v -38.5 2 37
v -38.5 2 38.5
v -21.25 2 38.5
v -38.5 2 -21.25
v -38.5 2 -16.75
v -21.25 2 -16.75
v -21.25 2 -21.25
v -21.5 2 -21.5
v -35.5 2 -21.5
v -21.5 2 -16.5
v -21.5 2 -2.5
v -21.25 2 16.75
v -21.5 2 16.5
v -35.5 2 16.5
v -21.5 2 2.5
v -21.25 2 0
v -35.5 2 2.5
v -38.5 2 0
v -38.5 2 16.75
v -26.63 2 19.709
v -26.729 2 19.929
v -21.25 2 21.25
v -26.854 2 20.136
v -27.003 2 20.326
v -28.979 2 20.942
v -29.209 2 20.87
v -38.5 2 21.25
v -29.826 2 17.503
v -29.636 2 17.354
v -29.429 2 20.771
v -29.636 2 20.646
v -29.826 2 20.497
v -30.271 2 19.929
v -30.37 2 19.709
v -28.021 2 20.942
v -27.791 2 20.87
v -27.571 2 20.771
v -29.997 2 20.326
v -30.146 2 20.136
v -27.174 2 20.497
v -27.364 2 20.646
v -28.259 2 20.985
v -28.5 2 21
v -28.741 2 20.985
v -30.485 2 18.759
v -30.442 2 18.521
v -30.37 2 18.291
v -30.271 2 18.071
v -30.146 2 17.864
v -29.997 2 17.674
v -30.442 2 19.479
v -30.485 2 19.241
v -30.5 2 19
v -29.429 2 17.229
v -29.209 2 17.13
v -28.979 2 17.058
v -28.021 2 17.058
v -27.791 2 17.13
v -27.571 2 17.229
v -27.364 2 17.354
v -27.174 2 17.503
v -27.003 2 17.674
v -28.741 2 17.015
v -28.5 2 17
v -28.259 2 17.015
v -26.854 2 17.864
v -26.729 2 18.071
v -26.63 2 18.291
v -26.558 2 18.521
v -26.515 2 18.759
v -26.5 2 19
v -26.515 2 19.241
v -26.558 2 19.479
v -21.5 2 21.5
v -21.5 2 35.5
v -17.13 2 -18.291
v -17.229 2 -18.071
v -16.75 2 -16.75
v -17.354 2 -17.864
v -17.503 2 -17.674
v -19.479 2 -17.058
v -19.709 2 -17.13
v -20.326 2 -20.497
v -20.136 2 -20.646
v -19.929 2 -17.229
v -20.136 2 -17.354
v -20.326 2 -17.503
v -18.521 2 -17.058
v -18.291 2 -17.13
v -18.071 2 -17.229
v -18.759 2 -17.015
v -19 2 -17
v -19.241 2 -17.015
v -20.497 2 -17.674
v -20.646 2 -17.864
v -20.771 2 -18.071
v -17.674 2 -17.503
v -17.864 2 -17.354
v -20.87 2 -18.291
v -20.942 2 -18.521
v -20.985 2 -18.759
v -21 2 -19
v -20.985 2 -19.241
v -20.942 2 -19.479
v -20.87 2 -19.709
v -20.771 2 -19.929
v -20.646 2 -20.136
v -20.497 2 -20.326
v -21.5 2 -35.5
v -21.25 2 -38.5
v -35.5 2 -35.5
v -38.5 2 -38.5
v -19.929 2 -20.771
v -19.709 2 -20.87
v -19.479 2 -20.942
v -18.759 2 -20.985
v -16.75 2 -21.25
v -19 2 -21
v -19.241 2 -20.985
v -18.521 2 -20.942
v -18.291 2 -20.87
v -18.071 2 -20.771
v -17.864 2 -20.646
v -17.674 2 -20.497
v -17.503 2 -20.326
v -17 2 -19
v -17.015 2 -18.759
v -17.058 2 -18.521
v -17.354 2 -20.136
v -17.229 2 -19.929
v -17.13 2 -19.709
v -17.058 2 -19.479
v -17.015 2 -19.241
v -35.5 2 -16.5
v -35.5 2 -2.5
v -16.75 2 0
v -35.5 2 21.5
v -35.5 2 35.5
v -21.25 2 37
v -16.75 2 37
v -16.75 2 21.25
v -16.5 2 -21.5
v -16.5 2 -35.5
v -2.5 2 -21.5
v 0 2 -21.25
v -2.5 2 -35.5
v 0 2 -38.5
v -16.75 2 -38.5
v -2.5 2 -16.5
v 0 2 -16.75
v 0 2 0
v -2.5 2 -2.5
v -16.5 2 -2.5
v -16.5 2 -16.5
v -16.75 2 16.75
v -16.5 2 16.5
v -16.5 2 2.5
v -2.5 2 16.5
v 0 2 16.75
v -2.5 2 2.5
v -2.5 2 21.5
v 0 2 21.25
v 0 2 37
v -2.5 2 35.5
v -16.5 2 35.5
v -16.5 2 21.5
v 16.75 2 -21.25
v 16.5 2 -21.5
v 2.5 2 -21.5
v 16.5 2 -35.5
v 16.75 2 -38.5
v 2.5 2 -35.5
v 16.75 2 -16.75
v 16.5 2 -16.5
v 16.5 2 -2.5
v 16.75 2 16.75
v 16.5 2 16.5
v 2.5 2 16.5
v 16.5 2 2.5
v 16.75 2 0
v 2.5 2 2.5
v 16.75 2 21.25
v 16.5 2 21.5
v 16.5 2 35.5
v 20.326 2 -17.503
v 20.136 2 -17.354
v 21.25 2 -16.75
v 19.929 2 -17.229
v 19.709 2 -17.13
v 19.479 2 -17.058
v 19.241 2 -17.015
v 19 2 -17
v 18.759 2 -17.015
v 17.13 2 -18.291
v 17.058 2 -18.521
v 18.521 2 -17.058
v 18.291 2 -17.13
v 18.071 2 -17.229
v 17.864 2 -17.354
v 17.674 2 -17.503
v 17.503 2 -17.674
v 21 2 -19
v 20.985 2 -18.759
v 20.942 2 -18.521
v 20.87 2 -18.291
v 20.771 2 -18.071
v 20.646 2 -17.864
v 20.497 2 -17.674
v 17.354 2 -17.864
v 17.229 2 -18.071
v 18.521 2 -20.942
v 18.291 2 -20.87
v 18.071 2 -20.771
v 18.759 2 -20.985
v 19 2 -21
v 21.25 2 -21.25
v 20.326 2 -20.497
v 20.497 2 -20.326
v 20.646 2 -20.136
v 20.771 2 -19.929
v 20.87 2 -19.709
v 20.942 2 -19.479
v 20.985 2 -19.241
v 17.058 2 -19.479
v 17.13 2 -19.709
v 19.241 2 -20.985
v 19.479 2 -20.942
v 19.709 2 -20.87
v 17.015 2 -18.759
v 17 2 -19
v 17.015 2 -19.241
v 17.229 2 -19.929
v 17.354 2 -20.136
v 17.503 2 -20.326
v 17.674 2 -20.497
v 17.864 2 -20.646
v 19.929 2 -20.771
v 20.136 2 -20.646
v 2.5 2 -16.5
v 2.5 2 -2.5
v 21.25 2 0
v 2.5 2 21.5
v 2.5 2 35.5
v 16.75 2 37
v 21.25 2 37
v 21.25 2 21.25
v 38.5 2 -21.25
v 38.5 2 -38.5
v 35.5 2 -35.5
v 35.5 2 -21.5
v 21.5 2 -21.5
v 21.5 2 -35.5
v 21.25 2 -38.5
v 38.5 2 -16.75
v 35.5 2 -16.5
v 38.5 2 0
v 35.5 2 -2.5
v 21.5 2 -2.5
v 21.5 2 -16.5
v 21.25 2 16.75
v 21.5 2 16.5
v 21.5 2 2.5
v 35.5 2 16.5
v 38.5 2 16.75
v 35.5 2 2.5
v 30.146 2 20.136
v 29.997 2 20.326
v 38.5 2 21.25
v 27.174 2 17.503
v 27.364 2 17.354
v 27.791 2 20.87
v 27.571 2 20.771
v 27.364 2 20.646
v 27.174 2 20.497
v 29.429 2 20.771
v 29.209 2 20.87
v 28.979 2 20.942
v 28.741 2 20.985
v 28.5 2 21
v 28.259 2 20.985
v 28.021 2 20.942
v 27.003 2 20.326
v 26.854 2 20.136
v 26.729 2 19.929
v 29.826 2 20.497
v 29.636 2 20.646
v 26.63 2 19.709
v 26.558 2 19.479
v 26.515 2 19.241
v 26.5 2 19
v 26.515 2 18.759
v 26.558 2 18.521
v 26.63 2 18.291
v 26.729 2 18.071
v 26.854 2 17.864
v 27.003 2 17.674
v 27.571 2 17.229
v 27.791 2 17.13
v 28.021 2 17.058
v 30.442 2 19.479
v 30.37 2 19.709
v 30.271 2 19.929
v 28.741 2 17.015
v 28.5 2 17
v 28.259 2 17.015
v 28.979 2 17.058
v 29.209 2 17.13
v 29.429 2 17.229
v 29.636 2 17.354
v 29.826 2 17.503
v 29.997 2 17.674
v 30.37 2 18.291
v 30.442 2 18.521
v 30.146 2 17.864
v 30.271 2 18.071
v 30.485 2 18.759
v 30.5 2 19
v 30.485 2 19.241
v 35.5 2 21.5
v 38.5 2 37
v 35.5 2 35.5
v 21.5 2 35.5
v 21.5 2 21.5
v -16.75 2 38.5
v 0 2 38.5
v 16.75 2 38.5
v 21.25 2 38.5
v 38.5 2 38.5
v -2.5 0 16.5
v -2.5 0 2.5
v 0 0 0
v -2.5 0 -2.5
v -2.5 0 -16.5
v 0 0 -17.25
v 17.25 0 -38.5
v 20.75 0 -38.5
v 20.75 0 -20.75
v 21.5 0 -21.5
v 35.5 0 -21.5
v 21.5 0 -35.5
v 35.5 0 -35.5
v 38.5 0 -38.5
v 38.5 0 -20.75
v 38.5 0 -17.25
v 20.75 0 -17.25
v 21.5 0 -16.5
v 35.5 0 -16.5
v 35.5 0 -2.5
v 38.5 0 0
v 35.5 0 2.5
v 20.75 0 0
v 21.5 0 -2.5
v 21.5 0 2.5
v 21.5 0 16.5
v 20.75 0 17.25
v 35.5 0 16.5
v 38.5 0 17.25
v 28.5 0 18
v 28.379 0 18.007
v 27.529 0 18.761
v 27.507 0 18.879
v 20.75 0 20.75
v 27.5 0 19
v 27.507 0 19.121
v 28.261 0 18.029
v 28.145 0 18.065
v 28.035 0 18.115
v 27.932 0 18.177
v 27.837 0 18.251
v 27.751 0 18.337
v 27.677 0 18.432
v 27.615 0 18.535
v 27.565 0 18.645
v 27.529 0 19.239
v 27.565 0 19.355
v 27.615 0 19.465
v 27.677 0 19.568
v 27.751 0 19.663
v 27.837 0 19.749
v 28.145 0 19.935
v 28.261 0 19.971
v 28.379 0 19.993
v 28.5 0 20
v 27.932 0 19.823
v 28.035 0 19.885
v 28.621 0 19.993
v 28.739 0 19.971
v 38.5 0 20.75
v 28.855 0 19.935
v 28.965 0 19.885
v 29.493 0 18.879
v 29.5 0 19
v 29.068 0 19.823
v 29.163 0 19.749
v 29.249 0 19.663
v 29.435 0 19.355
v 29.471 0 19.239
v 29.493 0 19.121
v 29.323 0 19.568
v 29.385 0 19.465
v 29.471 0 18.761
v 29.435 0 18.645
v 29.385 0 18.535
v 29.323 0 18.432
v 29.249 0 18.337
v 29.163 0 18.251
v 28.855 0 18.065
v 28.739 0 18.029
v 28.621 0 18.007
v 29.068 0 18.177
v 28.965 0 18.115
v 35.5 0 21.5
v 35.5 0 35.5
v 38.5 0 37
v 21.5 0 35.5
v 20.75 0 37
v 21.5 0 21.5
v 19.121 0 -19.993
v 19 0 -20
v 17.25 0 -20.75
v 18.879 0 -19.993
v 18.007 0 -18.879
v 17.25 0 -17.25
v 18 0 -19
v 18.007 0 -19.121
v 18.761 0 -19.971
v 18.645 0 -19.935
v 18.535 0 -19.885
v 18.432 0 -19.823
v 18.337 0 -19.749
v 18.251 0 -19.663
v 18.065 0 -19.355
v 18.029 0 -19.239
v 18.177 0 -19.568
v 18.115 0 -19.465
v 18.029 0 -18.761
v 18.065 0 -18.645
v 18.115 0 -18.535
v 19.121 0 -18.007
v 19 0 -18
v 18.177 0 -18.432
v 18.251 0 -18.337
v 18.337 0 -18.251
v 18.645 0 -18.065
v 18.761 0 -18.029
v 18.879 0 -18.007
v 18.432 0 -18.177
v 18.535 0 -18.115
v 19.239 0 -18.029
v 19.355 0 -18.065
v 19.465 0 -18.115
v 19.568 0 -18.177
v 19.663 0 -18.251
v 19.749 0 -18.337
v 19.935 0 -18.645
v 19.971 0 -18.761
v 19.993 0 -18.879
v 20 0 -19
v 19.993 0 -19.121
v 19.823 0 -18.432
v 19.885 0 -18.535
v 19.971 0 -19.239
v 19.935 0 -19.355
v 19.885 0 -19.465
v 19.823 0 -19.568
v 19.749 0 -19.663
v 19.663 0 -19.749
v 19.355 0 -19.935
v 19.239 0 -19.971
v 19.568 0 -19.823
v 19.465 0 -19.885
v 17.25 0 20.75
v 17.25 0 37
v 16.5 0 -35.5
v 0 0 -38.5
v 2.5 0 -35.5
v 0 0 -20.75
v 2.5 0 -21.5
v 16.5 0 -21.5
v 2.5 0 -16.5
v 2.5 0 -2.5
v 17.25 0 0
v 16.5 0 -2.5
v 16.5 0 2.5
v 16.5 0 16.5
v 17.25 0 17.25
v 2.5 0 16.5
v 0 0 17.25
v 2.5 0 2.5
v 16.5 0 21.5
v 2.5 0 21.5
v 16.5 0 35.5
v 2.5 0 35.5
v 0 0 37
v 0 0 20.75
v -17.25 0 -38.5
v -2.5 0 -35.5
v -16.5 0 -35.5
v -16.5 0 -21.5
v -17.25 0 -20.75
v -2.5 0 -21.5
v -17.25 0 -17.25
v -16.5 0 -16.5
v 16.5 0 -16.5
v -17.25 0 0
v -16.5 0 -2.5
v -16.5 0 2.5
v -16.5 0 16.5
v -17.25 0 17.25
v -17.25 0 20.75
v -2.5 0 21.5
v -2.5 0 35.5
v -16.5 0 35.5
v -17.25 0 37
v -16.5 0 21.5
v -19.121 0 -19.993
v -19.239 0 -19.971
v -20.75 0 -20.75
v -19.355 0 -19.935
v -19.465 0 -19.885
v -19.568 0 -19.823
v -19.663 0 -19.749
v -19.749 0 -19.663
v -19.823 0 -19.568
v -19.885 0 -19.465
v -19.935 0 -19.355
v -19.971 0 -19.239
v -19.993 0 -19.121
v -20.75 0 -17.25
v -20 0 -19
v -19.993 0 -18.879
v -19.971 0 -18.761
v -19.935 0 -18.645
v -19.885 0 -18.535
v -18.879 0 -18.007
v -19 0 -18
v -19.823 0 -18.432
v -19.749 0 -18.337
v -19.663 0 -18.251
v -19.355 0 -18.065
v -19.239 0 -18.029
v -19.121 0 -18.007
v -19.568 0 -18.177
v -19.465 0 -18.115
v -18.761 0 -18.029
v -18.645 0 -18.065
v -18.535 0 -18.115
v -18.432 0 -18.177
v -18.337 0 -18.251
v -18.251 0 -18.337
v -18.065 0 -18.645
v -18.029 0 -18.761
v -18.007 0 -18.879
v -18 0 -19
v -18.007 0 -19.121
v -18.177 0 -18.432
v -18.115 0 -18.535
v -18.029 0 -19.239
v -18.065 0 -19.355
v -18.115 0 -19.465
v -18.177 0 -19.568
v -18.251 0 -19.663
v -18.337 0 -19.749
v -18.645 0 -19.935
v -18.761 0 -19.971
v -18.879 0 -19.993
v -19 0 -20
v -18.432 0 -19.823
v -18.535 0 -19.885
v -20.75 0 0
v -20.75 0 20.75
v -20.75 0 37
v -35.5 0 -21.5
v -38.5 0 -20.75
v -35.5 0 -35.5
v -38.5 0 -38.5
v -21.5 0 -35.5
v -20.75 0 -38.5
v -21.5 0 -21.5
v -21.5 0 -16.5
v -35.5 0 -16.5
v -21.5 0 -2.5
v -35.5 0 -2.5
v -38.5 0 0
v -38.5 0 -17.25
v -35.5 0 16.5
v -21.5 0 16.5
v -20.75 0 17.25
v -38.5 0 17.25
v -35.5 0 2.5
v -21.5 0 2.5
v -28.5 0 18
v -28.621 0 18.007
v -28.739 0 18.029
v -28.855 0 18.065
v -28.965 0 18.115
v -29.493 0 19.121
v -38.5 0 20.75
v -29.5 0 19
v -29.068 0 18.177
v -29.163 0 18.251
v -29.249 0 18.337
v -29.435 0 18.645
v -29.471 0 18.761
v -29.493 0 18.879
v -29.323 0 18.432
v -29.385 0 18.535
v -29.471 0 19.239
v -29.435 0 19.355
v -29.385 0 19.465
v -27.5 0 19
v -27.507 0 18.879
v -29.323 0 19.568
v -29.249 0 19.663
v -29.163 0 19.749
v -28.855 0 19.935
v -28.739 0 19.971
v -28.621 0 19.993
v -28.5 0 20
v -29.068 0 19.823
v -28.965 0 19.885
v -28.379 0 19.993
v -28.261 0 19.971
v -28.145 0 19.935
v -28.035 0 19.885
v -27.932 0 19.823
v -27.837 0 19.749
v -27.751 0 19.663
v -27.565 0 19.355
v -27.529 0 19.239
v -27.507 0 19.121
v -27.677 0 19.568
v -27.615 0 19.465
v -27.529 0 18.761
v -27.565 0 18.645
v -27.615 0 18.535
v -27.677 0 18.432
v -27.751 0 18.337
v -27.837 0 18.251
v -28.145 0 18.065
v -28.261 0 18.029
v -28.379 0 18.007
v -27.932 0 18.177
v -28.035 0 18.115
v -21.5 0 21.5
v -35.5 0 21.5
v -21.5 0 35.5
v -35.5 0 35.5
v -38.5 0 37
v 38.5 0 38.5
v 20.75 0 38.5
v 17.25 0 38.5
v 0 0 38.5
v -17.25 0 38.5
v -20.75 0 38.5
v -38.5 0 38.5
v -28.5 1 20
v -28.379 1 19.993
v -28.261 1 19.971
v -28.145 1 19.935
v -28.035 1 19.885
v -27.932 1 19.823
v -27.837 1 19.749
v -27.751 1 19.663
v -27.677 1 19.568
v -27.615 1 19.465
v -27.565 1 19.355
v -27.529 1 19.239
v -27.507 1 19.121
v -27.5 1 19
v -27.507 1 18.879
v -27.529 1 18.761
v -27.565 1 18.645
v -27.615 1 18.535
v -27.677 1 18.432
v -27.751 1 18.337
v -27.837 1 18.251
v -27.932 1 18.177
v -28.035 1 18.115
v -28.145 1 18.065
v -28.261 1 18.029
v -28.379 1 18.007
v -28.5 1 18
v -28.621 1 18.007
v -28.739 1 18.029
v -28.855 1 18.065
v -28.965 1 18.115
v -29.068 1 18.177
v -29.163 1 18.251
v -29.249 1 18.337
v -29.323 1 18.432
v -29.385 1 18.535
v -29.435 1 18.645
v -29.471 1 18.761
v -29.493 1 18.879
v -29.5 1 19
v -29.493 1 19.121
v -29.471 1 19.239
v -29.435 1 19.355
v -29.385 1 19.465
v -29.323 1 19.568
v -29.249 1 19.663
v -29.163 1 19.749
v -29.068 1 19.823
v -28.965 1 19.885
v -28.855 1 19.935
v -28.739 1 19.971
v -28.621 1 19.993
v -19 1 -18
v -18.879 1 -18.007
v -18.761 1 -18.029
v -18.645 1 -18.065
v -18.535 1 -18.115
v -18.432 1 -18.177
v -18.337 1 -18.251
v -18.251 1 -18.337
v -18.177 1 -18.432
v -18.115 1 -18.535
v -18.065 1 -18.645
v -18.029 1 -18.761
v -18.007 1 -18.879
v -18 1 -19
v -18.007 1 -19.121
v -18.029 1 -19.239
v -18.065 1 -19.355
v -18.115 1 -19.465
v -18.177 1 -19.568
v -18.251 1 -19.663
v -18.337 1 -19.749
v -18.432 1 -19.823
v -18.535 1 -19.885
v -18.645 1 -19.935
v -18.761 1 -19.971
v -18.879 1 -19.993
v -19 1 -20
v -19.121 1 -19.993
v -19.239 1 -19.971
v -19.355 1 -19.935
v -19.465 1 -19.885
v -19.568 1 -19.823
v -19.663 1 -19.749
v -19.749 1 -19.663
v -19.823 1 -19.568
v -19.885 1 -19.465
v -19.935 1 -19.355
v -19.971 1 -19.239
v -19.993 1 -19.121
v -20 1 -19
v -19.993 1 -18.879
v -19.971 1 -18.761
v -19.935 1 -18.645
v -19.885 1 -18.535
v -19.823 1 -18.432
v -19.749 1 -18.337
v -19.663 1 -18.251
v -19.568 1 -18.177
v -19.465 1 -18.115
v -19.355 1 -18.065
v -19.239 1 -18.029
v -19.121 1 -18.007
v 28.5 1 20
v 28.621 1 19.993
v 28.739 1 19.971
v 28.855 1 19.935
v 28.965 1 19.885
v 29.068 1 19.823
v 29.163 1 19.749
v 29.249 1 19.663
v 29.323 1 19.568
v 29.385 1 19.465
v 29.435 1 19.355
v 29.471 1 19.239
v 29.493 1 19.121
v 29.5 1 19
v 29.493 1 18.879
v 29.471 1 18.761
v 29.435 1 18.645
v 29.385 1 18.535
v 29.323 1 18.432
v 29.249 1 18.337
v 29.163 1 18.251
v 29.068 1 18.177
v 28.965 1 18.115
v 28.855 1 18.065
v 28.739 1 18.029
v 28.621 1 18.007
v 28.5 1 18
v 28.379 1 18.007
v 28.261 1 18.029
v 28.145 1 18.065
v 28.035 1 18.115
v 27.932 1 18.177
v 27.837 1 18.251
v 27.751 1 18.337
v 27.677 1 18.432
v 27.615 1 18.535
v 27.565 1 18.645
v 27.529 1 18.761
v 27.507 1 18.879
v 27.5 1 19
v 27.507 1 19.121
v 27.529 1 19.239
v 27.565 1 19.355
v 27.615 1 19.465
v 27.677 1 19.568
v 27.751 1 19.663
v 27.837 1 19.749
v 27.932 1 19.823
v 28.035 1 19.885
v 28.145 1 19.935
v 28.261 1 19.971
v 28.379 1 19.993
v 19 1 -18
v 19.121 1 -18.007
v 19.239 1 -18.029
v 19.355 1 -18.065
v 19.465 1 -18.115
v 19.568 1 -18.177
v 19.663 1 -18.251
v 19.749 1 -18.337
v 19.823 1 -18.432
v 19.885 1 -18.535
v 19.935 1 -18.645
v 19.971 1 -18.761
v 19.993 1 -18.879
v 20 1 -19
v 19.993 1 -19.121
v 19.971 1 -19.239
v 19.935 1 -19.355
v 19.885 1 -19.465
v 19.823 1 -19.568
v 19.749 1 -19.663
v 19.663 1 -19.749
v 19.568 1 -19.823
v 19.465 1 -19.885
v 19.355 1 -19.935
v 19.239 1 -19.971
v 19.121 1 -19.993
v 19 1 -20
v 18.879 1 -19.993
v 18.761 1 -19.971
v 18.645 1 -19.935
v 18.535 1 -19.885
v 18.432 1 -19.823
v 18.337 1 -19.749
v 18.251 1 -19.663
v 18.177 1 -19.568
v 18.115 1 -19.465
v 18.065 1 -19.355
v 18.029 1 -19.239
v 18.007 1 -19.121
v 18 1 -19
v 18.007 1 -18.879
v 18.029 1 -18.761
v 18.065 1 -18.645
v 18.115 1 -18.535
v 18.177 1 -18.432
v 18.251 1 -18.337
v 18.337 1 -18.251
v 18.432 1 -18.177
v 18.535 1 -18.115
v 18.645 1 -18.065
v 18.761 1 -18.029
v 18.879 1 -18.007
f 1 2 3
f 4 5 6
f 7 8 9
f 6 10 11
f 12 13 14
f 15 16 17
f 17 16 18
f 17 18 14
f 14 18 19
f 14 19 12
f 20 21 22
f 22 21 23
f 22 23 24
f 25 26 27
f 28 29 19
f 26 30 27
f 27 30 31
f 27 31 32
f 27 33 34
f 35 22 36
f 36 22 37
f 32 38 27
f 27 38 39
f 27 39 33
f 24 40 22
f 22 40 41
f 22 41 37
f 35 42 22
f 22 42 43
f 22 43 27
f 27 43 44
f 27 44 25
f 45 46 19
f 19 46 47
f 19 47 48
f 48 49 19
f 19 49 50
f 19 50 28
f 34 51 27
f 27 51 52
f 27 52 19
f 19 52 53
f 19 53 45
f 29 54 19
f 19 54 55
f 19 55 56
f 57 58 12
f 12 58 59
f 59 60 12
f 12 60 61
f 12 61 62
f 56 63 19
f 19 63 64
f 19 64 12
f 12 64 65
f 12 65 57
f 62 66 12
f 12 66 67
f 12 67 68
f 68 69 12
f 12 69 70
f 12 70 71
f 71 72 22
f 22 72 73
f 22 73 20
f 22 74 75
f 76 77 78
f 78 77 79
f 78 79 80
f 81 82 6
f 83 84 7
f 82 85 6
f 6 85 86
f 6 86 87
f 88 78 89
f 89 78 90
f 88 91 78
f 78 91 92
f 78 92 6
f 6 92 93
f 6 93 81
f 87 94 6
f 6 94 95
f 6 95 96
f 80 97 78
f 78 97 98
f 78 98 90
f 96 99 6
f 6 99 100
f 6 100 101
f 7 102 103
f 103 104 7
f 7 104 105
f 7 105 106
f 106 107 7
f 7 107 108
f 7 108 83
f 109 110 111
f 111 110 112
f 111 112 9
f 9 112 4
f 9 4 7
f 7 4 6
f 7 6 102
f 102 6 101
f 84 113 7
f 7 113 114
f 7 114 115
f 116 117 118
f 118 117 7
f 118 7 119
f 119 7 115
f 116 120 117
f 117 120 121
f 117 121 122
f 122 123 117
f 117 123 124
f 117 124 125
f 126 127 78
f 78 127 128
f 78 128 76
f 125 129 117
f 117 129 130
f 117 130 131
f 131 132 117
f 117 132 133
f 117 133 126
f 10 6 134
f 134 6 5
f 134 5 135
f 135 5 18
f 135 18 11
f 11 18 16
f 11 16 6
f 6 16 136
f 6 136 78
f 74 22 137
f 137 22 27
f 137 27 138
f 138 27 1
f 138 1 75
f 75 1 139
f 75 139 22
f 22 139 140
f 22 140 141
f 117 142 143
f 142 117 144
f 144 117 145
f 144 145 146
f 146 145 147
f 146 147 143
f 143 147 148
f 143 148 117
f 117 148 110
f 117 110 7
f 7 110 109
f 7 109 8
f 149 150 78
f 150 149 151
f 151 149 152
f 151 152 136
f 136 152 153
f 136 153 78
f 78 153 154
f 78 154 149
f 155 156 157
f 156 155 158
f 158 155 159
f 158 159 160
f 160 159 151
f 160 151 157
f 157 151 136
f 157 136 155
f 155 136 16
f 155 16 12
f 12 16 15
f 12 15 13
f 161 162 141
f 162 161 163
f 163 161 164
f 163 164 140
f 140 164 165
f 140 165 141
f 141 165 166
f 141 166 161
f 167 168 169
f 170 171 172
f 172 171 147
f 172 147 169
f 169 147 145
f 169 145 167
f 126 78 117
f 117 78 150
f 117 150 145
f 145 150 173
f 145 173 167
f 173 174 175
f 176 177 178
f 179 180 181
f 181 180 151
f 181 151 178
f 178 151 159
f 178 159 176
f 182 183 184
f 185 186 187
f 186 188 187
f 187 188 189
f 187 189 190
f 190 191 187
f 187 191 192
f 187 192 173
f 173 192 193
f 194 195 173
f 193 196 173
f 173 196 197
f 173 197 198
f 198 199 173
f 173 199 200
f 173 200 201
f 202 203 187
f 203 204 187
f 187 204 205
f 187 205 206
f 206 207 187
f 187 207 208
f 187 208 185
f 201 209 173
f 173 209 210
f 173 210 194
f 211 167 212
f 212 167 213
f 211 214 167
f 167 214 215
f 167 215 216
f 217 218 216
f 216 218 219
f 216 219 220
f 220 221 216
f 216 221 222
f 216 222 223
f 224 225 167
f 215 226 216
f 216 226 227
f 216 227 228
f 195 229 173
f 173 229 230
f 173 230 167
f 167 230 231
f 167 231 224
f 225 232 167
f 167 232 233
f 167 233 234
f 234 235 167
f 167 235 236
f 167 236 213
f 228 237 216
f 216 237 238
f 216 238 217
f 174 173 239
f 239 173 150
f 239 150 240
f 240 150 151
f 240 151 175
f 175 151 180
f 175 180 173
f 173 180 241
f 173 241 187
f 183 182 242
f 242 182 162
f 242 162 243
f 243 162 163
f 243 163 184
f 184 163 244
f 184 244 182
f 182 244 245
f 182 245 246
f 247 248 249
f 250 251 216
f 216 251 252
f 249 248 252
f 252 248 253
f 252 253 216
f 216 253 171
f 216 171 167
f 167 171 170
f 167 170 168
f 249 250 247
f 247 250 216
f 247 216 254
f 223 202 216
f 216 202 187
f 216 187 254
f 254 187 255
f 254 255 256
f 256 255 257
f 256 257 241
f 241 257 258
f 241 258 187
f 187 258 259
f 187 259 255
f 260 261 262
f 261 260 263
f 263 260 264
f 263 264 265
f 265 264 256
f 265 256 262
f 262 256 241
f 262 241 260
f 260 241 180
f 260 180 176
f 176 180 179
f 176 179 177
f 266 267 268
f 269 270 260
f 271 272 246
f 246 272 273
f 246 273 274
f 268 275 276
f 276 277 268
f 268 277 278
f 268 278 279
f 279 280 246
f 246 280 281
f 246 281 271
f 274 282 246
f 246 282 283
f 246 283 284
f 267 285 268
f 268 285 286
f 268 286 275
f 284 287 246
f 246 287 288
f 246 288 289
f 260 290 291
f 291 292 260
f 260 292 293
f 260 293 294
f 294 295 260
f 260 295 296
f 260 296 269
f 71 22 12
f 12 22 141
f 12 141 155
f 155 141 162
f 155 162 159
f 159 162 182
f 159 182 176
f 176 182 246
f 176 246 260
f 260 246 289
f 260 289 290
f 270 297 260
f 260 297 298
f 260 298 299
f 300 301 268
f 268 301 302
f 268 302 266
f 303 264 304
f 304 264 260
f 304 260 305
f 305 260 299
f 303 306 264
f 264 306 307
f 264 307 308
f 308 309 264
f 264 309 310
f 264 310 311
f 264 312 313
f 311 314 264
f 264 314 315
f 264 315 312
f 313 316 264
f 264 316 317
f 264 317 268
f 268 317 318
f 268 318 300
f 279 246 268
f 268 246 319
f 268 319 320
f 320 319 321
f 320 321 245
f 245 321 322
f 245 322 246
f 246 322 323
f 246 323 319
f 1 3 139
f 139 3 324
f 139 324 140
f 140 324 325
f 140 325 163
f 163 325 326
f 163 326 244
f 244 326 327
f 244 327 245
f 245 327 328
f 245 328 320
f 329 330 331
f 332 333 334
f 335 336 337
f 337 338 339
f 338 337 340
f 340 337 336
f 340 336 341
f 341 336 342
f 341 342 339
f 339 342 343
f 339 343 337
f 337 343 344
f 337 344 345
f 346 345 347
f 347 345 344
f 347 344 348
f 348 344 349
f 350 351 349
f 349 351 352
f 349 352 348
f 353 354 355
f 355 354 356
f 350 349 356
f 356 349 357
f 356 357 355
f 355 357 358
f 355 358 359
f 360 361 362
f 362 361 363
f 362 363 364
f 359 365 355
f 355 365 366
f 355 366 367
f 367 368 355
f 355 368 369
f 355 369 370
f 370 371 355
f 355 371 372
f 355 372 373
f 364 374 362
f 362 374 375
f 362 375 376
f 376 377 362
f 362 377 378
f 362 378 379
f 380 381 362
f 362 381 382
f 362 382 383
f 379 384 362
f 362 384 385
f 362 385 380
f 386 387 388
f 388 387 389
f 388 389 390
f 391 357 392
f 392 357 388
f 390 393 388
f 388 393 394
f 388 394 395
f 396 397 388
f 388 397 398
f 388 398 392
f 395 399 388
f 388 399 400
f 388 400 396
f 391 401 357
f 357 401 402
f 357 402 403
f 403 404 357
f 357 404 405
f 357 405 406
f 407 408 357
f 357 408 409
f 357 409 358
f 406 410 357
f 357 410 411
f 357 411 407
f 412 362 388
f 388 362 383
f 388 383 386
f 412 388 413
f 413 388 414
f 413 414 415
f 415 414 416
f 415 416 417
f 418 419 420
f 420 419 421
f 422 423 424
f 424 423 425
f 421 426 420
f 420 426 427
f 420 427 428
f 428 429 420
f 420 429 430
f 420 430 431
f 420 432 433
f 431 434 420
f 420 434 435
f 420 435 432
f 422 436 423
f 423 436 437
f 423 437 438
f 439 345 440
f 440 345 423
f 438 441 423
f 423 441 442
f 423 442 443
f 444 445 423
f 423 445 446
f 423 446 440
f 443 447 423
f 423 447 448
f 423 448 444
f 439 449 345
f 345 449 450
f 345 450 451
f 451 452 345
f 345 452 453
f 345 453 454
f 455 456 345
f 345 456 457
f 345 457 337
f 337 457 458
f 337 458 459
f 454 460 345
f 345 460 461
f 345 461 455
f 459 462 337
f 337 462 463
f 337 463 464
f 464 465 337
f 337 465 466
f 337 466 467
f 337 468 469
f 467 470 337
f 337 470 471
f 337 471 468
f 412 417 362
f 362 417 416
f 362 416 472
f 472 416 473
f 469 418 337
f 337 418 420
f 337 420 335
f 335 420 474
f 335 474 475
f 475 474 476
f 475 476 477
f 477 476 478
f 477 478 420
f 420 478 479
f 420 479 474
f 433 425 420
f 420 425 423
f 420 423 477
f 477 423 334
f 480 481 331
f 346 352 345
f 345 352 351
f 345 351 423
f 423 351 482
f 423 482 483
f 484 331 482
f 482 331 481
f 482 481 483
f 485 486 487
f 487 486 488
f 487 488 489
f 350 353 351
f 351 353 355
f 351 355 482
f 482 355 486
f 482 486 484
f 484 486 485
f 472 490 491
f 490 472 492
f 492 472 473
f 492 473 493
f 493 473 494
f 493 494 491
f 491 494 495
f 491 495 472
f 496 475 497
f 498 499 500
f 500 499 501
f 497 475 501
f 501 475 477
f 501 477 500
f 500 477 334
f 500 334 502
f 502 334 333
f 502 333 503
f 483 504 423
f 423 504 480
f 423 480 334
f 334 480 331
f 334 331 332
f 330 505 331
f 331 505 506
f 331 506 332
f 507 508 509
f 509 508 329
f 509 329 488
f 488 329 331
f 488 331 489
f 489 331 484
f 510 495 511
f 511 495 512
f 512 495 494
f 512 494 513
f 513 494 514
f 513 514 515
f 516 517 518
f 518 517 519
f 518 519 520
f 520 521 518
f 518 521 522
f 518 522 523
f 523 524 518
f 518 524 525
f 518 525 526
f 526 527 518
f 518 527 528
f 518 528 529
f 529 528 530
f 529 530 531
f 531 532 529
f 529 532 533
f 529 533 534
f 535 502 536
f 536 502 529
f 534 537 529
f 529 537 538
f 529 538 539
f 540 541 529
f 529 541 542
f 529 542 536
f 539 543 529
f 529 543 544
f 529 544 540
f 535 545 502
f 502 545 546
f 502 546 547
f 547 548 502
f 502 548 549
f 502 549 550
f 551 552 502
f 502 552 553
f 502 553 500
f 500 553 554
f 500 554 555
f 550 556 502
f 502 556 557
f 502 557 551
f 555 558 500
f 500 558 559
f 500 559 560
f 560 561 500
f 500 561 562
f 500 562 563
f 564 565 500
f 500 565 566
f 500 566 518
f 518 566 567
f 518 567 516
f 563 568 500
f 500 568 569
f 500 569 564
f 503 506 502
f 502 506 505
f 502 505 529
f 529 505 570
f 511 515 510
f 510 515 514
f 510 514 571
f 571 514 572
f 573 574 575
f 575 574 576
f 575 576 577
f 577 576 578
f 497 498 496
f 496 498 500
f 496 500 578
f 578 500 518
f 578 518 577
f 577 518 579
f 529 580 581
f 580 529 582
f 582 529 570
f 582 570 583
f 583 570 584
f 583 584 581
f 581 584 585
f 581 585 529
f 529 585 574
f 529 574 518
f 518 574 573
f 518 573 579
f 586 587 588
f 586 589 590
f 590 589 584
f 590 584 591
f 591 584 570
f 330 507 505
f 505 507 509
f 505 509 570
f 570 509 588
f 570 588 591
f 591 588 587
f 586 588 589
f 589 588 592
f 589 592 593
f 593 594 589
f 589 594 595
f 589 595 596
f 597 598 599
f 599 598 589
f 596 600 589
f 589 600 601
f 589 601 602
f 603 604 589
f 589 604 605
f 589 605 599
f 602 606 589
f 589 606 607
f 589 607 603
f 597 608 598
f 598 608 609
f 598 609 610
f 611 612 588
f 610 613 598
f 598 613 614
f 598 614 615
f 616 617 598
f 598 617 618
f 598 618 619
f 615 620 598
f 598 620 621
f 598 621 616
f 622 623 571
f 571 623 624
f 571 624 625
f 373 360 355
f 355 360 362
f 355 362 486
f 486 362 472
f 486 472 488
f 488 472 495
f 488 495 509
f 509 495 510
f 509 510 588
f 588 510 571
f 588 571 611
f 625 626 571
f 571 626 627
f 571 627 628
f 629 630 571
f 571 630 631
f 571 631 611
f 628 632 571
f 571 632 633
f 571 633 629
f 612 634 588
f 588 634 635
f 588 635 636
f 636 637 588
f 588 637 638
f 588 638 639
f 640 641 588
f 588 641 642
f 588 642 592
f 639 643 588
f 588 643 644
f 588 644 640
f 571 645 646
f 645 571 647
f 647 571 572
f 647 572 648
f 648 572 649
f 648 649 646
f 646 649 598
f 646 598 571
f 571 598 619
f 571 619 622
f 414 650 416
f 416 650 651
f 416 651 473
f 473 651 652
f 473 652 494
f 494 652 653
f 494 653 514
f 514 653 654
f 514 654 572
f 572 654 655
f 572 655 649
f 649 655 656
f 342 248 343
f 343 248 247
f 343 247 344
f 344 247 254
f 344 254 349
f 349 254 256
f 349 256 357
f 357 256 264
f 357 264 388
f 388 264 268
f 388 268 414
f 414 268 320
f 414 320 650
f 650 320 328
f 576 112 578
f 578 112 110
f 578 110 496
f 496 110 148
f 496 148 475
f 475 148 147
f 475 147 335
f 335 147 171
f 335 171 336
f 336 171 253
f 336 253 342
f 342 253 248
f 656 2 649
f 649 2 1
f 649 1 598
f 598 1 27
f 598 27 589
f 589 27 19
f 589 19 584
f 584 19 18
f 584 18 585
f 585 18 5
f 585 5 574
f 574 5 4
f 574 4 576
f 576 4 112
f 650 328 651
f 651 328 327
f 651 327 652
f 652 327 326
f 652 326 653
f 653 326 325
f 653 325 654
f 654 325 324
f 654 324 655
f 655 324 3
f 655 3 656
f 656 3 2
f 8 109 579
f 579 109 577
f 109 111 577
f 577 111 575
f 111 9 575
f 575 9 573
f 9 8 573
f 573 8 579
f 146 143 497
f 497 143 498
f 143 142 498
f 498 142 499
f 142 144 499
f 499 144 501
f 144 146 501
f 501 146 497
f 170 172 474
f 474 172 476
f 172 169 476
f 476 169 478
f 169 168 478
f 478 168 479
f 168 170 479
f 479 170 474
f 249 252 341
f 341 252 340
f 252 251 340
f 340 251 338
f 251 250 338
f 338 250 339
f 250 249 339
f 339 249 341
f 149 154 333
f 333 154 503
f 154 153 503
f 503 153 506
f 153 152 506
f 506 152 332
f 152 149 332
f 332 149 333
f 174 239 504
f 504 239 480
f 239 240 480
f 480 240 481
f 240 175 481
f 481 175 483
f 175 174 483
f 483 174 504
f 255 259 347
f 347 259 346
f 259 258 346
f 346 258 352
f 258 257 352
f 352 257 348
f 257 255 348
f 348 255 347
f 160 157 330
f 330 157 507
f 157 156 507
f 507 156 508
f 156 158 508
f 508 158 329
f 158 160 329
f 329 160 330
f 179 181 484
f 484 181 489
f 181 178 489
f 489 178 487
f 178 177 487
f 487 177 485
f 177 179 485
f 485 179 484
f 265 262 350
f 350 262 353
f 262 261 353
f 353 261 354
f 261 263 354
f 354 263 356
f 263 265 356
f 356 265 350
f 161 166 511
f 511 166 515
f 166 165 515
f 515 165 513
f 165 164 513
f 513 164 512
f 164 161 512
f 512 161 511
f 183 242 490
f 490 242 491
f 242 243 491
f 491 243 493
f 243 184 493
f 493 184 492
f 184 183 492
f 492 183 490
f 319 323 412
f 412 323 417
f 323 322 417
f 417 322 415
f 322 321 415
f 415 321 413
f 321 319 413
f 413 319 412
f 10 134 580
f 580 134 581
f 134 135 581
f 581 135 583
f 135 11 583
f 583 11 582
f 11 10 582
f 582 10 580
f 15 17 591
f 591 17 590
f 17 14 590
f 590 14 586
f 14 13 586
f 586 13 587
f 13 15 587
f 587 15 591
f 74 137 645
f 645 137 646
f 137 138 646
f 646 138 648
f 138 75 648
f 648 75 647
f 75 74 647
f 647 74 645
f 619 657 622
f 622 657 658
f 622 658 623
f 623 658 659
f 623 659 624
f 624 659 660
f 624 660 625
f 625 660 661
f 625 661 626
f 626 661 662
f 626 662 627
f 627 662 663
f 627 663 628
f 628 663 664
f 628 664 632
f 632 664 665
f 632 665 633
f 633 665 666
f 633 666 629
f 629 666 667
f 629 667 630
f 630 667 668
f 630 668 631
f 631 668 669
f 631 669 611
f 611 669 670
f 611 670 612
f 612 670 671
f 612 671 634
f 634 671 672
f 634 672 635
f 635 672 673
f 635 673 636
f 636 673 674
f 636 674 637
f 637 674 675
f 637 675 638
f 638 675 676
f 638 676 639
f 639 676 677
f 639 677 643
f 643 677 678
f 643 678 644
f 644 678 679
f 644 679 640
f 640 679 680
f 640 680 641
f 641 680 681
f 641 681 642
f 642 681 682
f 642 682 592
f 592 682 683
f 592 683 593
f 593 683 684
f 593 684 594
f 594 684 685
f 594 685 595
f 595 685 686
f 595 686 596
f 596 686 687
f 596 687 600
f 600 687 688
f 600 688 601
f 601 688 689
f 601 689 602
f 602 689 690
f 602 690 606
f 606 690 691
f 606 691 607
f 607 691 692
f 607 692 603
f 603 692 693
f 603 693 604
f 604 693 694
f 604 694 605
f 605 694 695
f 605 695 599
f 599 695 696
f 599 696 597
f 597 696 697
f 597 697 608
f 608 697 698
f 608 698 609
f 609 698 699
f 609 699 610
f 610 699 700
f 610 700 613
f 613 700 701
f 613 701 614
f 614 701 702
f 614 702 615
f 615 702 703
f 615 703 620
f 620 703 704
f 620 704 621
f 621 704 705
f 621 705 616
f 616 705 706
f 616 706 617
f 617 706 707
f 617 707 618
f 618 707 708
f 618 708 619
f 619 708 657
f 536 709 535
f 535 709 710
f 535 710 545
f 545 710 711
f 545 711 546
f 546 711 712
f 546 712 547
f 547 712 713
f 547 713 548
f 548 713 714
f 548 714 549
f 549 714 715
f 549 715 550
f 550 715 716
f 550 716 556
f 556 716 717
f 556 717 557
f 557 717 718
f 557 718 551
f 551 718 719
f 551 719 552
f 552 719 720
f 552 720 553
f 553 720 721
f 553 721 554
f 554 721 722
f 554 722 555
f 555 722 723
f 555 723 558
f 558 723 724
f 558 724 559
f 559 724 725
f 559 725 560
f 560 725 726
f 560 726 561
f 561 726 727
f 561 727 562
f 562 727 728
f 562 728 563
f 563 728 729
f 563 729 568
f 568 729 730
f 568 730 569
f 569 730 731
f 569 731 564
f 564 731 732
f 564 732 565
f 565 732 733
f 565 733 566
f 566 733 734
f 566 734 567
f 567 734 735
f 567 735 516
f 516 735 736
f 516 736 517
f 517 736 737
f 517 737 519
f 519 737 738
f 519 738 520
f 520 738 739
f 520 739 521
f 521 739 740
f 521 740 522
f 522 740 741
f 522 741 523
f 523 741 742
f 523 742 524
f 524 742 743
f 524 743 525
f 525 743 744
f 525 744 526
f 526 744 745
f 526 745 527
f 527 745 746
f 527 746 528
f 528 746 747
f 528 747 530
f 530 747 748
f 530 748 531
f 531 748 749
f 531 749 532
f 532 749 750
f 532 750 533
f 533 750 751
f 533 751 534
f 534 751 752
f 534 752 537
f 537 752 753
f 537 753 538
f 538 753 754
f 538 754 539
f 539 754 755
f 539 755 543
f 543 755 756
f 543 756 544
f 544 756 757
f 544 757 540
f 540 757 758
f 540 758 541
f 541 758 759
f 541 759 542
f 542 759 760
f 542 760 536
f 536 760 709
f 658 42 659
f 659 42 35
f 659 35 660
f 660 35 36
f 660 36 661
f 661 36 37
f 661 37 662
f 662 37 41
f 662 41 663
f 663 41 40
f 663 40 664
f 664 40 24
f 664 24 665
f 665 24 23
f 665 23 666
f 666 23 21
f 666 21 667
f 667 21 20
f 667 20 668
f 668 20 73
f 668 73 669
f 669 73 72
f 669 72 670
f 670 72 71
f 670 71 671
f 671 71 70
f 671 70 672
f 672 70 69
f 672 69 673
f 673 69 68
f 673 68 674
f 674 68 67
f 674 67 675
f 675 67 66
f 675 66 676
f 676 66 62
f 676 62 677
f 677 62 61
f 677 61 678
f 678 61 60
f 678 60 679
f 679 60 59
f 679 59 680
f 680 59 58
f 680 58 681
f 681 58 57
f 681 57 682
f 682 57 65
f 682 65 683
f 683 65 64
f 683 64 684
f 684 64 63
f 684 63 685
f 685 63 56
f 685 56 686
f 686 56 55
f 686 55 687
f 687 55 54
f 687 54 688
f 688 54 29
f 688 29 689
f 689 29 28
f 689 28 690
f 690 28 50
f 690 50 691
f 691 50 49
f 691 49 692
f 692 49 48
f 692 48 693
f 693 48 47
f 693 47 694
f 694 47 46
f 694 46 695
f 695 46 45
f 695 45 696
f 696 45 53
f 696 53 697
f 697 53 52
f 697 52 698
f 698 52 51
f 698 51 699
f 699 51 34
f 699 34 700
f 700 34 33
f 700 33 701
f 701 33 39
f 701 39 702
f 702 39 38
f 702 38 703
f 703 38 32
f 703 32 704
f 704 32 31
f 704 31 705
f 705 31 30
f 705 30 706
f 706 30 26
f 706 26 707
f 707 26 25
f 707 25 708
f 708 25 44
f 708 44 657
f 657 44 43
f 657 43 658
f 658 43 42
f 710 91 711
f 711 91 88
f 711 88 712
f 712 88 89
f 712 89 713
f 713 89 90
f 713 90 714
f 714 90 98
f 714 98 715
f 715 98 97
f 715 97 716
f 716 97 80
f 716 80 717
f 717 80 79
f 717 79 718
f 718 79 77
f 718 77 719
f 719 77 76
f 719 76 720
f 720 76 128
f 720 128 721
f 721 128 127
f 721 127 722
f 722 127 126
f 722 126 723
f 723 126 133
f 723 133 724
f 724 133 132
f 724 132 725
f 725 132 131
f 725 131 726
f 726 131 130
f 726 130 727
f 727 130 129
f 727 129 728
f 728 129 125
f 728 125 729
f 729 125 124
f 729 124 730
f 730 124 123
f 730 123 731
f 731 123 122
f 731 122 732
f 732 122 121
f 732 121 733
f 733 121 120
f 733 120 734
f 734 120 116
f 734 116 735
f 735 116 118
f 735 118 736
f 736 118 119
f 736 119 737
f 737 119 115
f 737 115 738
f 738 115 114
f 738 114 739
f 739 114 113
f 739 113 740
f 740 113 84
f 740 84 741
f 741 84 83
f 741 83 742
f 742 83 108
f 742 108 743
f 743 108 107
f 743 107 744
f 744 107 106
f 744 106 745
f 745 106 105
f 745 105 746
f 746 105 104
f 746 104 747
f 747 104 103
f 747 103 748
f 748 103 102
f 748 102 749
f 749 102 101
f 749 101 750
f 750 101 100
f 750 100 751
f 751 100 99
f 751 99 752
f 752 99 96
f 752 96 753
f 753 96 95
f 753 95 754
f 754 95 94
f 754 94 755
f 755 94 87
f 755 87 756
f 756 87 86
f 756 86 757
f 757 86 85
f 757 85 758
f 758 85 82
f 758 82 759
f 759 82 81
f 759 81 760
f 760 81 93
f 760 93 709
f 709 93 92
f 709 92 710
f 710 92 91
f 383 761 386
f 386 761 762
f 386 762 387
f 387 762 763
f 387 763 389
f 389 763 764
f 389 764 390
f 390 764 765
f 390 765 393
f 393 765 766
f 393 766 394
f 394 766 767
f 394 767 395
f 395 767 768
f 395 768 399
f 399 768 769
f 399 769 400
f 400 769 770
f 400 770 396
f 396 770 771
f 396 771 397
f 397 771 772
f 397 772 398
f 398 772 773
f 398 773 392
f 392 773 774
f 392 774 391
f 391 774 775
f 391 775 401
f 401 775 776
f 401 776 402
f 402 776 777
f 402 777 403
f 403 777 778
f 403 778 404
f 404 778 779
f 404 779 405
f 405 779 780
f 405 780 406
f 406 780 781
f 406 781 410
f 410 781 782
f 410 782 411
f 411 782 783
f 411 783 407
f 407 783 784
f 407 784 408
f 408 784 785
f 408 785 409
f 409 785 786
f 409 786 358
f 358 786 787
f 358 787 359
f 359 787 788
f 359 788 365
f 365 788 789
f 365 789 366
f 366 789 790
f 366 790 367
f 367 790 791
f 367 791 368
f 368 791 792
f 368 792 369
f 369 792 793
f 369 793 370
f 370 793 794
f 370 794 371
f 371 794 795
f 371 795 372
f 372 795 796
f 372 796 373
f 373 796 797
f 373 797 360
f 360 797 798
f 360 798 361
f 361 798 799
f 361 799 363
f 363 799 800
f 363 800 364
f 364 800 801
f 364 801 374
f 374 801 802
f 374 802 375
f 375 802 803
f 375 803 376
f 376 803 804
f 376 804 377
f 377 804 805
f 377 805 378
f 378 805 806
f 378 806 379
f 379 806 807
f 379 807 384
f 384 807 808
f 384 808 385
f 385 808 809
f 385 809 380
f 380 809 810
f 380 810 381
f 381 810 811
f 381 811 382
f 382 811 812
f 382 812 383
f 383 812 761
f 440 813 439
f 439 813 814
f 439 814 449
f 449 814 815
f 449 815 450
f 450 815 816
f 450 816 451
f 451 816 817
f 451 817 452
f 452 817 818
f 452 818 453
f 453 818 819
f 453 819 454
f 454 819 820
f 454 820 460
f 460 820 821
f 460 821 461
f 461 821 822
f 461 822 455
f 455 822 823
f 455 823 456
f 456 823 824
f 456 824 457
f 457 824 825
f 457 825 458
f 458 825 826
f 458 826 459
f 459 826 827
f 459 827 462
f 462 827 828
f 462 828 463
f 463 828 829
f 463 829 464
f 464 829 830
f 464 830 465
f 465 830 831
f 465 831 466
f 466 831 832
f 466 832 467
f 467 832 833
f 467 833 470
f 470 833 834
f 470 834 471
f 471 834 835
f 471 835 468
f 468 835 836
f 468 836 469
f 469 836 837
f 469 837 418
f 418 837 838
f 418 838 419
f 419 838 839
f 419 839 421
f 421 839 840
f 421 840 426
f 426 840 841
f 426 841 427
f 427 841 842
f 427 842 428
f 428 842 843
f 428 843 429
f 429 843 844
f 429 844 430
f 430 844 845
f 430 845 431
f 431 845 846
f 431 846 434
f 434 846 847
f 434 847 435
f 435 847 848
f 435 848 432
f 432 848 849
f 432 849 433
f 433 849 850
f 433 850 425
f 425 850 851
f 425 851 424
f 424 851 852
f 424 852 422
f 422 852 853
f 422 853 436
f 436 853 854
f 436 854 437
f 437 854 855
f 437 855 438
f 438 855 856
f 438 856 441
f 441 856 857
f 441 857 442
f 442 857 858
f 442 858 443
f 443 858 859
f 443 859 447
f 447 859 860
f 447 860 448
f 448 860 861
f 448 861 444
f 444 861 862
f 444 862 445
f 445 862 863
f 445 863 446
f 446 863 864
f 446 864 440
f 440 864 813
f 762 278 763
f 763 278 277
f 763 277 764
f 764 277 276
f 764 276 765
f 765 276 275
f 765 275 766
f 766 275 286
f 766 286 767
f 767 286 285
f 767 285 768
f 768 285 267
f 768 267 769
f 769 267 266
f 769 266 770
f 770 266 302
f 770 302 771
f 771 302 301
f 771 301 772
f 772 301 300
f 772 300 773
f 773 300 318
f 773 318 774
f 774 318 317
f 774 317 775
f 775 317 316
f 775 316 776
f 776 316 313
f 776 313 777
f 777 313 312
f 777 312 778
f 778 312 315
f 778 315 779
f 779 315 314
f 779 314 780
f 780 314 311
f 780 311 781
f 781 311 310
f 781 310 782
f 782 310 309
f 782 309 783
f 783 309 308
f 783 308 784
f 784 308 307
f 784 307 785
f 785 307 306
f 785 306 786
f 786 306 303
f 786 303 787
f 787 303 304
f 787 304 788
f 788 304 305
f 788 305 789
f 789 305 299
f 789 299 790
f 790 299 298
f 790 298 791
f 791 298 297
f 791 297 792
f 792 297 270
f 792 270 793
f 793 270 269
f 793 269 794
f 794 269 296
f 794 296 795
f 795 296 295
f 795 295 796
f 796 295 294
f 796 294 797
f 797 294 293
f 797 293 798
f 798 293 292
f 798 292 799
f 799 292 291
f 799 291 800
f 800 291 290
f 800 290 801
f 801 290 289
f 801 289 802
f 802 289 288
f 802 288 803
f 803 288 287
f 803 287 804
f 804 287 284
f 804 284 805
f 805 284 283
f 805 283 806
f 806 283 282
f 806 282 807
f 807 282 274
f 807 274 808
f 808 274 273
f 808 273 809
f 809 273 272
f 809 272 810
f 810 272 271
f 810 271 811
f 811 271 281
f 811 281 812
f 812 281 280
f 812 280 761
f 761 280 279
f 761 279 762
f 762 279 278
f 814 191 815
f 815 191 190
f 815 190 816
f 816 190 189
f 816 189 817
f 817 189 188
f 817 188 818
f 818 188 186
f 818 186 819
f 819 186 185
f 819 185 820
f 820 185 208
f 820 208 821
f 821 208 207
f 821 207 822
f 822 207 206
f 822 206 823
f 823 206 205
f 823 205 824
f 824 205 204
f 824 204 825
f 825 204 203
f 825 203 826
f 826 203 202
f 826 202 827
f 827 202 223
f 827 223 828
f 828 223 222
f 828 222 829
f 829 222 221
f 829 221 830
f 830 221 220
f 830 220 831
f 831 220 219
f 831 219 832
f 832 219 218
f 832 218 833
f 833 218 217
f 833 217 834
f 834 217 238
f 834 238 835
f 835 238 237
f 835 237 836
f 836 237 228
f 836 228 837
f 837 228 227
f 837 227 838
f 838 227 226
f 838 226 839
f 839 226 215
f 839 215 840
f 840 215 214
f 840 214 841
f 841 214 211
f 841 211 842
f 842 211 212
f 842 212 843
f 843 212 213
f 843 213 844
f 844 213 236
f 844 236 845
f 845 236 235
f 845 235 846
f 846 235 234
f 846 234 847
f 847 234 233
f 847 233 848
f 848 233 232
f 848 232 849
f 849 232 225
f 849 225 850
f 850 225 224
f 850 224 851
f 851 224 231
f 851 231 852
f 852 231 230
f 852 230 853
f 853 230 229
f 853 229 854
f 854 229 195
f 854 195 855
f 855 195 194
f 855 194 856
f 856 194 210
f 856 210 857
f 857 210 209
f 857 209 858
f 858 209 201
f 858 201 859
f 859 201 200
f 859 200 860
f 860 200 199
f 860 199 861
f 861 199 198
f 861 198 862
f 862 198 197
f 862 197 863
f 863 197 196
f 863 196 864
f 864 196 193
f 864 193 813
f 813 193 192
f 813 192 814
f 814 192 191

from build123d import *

# Parameters (mm, degrees)
SKETCH1_W                = 77
SKETCH1_H                = 77
SKETCH1_W_2              = 14
SKETCH1_H_2              = 14
BOSS_EXTRUDE1_DEPTH      = 2
SKETCH2_R                = 1
CUT_EXTRUDE1_DEPTH       = 2
CHAMFER1_SIZE            = 1
CHAMFER1_OF_MIRROR1_SIZE = 1


with BuildPart() as part:
    # Sketch1 → Boss-Extrude1 (new body)
    with BuildSketch(Plane(origin=(0, 0, 0), x_dir=(1, 0, 0), z_dir=(0, 1, 0))):
        Rectangle(SKETCH1_W, SKETCH1_H)
        with Locations((-9.5, 28.5)):
            Rectangle(SKETCH1_W_2, SKETCH1_H_2, mode=Mode.SUBTRACT)
        with Locations((-28.5, 28.5)):
            Rectangle(SKETCH1_W_2, SKETCH1_H_2, mode=Mode.SUBTRACT)
        with Locations((9.5, 28.5)):
            Rectangle(SKETCH1_W_2, SKETCH1_H_2, mode=Mode.SUBTRACT)
        with Locations((28.5, 28.5)):
            Rectangle(SKETCH1_W_2, SKETCH1_H_2, mode=Mode.SUBTRACT)
        with Locations((-9.5, 9.5)):
            Rectangle(SKETCH1_W_2, SKETCH1_H_2, mode=Mode.SUBTRACT)
        with Locations((9.5, 9.5)):
            Rectangle(SKETCH1_W_2, SKETCH1_H_2, mode=Mode.SUBTRACT)
        with Locations((28.5, 9.5)):
            Rectangle(SKETCH1_W_2, SKETCH1_H_2, mode=Mode.SUBTRACT)
        with Locations((-9.5, -9.5)):
            Rectangle(SKETCH1_W_2, SKETCH1_H_2, mode=Mode.SUBTRACT)
        with Locations((9.5, -9.5)):
            Rectangle(SKETCH1_W_2, SKETCH1_H_2, mode=Mode.SUBTRACT)
        with Locations((28.5, -9.5)):
            Rectangle(SKETCH1_W_2, SKETCH1_H_2, mode=Mode.SUBTRACT)
        with Locations((-9.5, -28.5)):
            Rectangle(SKETCH1_W_2, SKETCH1_H_2, mode=Mode.SUBTRACT)
        with Locations((9.5, -28.5)):
            Rectangle(SKETCH1_W_2, SKETCH1_H_2, mode=Mode.SUBTRACT)
        with Locations((28.5, -28.5)):
            Rectangle(SKETCH1_W_2, SKETCH1_H_2, mode=Mode.SUBTRACT)
        with Locations((-28.5, 9.5)):
            Rectangle(SKETCH1_W_2, SKETCH1_H_2, mode=Mode.SUBTRACT)
        with Locations((-28.5, -9.5)):
            Rectangle(SKETCH1_W_2, SKETCH1_H_2, mode=Mode.SUBTRACT)
        with Locations((-28.5, -28.5)):
            Rectangle(SKETCH1_W_2, SKETCH1_H_2, mode=Mode.SUBTRACT)
    extrude(amount=BOSS_EXTRUDE1_DEPTH)

    # Sketch2 → Cut-Extrude1 (cut)
    with BuildSketch(Plane(origin=(0, 2, 0), x_dir=(1, 0, 0), z_dir=(0, 1, 0))):
        with Locations(Location((-19, 19, 0), (0, 0, 270))):
            Circle(SKETCH2_R)
        with Locations(Location((-28.5, -19, 0), (0, 0, 270))):
            Circle(SKETCH2_R)
    cut_extrude1 = extrude(amount=-CUT_EXTRUDE1_DEPTH, mode=Mode.SUBTRACT)

    # Chamfer1
    chamfer1_edges = [part.edges().sort_by_distance(p)[0] for p in [
        (-19, 2, -20),
        (-28.5, 2, 18),
    ]]
    chamfer(chamfer1_edges, length=CHAMFER1_SIZE)

    # Mirror1: Cut-Extrude1 across plane
    add(cut_extrude1.mirror(Plane(origin=(0, 0, 0), x_dir=(0, 0, 1), z_dir=(1, 0, 0))), mode=Mode.SUBTRACT)

    # Chamfer1 of Mirror1
    chamfer1_of_mirror1_edges = [part.edges().sort_by_distance(p)[0] for p in [
        (19, 2, -20),
        (28.5, 2, 18),
    ]]
    chamfer(chamfer1_of_mirror1_edges, length=CHAMFER1_OF_MIRROR1_SIZE)


solid = part.part
